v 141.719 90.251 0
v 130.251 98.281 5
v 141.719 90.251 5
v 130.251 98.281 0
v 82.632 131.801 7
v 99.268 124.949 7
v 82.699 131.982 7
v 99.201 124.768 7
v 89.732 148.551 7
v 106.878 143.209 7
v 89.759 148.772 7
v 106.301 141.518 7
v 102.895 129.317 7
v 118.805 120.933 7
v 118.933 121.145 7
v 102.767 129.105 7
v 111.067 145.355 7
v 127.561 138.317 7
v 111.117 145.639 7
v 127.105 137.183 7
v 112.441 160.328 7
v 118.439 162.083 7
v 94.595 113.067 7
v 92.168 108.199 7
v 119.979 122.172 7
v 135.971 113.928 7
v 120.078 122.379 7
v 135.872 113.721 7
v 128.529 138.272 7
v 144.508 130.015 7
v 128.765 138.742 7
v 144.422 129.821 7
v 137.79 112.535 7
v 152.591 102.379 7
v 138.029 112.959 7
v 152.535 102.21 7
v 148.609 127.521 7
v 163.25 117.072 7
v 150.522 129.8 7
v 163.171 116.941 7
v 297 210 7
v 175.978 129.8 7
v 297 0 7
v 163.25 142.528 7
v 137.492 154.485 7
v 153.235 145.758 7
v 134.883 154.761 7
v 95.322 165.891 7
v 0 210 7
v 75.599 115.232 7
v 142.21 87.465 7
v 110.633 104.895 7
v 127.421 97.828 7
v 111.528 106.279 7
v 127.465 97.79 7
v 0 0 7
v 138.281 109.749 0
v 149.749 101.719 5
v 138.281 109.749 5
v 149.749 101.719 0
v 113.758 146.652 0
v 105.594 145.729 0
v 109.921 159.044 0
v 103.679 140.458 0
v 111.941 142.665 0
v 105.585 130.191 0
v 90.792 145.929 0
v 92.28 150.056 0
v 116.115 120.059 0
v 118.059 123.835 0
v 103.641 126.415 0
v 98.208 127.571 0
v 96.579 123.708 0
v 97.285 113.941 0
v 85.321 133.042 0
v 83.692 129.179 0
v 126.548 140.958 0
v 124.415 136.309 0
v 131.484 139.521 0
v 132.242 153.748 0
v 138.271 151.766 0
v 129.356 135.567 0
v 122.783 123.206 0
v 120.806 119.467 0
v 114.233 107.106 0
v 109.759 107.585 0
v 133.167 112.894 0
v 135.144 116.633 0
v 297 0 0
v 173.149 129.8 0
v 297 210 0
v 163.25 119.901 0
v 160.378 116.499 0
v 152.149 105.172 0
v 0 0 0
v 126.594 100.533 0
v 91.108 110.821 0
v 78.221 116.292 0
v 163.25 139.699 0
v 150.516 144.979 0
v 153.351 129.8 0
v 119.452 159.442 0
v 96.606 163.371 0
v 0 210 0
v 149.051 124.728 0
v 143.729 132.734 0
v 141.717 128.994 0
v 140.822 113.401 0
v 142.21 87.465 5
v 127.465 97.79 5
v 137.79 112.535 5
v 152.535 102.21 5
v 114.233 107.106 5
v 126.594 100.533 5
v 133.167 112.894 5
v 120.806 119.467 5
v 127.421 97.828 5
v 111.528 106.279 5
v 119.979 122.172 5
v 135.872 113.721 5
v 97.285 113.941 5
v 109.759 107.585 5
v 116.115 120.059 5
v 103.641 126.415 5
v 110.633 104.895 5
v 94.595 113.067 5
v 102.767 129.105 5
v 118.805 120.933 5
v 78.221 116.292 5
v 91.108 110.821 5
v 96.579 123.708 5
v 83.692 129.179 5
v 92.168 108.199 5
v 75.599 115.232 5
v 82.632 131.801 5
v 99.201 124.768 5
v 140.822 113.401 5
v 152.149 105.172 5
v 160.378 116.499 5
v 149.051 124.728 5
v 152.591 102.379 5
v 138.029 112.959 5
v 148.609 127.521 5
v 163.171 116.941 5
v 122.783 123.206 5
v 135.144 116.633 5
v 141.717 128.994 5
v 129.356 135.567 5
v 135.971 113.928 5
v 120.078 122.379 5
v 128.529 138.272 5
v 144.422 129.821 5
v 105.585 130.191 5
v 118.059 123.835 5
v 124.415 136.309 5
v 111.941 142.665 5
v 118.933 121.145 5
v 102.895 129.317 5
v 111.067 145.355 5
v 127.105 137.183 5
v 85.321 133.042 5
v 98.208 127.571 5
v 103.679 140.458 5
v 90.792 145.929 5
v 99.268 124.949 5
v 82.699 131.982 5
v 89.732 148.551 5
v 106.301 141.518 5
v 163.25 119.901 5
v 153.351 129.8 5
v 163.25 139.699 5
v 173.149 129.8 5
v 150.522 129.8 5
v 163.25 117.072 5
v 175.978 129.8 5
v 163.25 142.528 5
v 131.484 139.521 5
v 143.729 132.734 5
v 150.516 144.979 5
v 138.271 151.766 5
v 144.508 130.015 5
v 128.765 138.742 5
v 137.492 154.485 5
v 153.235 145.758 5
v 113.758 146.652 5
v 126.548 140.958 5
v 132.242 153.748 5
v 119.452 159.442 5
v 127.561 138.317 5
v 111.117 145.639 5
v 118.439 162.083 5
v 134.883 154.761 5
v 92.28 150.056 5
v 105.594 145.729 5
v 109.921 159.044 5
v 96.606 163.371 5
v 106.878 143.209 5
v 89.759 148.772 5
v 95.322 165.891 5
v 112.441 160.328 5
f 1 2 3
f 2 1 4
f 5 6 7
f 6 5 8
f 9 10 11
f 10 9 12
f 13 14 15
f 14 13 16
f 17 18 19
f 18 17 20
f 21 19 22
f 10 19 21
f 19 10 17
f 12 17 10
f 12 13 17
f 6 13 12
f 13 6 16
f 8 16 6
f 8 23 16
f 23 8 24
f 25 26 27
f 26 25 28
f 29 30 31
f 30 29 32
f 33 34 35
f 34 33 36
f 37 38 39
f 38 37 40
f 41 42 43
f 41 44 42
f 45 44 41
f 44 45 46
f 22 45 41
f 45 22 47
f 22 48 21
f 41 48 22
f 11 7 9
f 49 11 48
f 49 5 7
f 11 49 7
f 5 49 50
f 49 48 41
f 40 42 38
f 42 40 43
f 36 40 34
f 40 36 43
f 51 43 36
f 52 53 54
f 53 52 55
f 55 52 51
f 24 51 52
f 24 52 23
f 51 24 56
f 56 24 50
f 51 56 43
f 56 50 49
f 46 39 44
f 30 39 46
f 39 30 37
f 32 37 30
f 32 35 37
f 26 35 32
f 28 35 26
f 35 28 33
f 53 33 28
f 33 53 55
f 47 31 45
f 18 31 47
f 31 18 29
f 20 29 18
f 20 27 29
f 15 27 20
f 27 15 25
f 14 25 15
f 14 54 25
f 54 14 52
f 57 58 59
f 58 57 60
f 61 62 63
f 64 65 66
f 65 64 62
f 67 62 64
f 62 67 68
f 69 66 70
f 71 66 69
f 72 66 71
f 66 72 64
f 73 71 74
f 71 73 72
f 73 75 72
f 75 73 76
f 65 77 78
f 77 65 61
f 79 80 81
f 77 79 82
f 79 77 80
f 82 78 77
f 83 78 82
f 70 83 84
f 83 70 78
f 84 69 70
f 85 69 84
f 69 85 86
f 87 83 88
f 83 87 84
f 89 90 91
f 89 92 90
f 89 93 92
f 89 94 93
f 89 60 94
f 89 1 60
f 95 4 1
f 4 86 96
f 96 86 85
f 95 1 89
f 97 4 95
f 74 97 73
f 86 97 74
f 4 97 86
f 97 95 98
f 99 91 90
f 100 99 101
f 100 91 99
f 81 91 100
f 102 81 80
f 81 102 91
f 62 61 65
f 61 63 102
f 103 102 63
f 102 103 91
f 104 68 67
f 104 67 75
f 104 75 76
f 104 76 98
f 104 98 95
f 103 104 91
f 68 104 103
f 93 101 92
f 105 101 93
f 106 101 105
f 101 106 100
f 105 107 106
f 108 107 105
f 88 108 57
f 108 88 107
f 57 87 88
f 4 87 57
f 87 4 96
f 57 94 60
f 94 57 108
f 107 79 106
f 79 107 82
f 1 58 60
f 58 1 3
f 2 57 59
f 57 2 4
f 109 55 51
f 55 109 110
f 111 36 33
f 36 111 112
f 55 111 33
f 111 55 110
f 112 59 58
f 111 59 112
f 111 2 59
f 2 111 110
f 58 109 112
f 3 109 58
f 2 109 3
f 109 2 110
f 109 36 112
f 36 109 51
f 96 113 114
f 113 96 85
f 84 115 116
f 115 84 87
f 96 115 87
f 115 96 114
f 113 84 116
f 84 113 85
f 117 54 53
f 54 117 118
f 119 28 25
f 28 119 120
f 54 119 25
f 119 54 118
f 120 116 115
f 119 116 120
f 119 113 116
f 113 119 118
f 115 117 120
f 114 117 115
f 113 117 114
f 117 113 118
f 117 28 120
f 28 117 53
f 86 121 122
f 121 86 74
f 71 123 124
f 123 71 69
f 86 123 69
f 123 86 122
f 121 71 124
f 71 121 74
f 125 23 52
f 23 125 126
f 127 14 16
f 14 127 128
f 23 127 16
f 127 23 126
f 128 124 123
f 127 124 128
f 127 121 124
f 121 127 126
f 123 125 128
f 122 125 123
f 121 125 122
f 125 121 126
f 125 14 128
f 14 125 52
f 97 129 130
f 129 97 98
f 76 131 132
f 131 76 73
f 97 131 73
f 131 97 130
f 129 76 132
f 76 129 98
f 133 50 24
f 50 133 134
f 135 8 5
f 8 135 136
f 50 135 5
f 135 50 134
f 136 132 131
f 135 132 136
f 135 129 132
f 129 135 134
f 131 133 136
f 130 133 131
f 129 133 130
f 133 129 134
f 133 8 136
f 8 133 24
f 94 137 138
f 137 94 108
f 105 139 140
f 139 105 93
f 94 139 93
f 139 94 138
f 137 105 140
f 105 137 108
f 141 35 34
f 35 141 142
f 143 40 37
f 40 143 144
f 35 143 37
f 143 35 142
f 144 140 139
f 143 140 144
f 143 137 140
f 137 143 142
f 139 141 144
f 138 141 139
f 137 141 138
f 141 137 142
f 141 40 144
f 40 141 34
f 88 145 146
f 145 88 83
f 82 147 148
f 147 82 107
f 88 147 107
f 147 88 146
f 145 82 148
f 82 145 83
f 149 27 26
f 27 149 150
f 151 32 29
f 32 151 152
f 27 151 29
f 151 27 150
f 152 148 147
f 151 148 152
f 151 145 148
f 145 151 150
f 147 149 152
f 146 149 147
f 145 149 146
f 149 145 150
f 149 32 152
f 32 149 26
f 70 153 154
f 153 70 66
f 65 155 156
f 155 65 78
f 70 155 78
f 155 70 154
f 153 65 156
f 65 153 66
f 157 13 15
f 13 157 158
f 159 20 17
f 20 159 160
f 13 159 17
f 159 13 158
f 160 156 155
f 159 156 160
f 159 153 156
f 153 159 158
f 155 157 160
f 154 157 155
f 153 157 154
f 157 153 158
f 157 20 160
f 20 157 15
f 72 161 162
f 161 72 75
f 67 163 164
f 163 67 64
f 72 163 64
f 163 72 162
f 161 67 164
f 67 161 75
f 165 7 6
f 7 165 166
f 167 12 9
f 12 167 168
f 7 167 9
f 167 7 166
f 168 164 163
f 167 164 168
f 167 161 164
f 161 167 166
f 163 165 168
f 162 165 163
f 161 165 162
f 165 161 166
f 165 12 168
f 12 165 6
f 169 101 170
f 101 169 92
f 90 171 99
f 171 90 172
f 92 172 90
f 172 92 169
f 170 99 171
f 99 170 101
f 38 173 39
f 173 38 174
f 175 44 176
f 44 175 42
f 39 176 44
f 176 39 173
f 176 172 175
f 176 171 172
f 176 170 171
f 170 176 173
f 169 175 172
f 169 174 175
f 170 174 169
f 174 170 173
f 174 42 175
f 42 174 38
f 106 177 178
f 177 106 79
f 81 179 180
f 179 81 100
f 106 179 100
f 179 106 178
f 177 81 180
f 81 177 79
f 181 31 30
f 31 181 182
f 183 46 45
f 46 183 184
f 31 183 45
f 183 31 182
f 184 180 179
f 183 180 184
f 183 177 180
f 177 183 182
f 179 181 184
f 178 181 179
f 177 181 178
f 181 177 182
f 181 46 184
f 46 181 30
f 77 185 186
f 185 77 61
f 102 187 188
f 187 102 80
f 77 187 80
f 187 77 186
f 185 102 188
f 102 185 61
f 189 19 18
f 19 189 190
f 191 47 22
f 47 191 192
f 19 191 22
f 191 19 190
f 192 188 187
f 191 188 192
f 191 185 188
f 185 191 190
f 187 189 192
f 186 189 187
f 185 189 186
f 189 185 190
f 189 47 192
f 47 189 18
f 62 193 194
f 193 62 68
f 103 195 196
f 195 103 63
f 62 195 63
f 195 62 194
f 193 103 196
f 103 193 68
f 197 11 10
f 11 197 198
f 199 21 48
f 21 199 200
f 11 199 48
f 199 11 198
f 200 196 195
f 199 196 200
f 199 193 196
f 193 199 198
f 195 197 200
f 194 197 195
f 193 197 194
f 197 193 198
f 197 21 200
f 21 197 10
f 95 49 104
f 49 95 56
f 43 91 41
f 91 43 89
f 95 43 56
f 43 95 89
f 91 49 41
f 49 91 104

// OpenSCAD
$fn = 30;

thickness = 7;

module plate() {
    cube([297, 210, thickness]);
}

module key_cap() {
    translate([-9, -9, thickness - 2]) {
        cube([18, 18, 2]);
    }
}

module key_hole() {
    translate([-7, -7, 0]) {
        cube([14, 14, thickness]);
    }
    key_cap();
}

module left_hand() {
    translate([90, 50, 0]) {
        rotate(a=90 - 35, v=[0,0,1]) {
            key_hole();
        }
    }
    
    translate([73.70, 60, 0]) {
        rotate(a=90 - 28, v=[0,0,1]) {
            key_hole();
        }
    }
    
    translate([56.7, 67, 0]) {
        rotate(a=90 - 27, v=[0,0,1]) {
            key_hole();
        }
    }
    
    translate([37.4, 70, 0]) {
        rotate(a=90 - 23, v=[0,0,1]) {
            key_hole();
        }
    }
    
    
    
    translate([100.6, 64.95, 0]) {
        rotate(a=90 - 36, v=[0,0,1]) {
            key_hole();
        }
    }
    
    translate([82.25, 76.1, 0]) {
        rotate(a=90 - 28, v=[0,0,1]) {
            key_hole();
        }
    }
    
    translate([65, 83.25, 0]) {
        rotate(a=90 - 27, v=[0,0,1]) {
            key_hole();
        }
    }
    
    translate([44.5, 86.75, 0]) {
        rotate(a=90 - 23, v=[0,0,1]) {
            key_hole();
        }
    }
    
    
    
    translate([113.25, 79.8, 0]) {
        rotate(a=90 - 45, v=[0,0,1]) {
            key_hole();
        }
    }
    
    translate([91, 92.25, 0]) {
        rotate(a=90 - 29, v=[0,0,1]) {
            key_hole();
        }
    }
    
    translate([73, 100.2, 0]) {
        rotate(a=90 - 24, v=[0,0,1]) {
            key_hole();
        }
    }
    
    translate([51.1, 104.55, 0]) {
        rotate(a=90 - 18, v=[0,0,1]) {
            key_hole();
        }
    }
}

difference(){
    plate();
    translate([50, 50, 0]) {
        left_hand();
    }
}
